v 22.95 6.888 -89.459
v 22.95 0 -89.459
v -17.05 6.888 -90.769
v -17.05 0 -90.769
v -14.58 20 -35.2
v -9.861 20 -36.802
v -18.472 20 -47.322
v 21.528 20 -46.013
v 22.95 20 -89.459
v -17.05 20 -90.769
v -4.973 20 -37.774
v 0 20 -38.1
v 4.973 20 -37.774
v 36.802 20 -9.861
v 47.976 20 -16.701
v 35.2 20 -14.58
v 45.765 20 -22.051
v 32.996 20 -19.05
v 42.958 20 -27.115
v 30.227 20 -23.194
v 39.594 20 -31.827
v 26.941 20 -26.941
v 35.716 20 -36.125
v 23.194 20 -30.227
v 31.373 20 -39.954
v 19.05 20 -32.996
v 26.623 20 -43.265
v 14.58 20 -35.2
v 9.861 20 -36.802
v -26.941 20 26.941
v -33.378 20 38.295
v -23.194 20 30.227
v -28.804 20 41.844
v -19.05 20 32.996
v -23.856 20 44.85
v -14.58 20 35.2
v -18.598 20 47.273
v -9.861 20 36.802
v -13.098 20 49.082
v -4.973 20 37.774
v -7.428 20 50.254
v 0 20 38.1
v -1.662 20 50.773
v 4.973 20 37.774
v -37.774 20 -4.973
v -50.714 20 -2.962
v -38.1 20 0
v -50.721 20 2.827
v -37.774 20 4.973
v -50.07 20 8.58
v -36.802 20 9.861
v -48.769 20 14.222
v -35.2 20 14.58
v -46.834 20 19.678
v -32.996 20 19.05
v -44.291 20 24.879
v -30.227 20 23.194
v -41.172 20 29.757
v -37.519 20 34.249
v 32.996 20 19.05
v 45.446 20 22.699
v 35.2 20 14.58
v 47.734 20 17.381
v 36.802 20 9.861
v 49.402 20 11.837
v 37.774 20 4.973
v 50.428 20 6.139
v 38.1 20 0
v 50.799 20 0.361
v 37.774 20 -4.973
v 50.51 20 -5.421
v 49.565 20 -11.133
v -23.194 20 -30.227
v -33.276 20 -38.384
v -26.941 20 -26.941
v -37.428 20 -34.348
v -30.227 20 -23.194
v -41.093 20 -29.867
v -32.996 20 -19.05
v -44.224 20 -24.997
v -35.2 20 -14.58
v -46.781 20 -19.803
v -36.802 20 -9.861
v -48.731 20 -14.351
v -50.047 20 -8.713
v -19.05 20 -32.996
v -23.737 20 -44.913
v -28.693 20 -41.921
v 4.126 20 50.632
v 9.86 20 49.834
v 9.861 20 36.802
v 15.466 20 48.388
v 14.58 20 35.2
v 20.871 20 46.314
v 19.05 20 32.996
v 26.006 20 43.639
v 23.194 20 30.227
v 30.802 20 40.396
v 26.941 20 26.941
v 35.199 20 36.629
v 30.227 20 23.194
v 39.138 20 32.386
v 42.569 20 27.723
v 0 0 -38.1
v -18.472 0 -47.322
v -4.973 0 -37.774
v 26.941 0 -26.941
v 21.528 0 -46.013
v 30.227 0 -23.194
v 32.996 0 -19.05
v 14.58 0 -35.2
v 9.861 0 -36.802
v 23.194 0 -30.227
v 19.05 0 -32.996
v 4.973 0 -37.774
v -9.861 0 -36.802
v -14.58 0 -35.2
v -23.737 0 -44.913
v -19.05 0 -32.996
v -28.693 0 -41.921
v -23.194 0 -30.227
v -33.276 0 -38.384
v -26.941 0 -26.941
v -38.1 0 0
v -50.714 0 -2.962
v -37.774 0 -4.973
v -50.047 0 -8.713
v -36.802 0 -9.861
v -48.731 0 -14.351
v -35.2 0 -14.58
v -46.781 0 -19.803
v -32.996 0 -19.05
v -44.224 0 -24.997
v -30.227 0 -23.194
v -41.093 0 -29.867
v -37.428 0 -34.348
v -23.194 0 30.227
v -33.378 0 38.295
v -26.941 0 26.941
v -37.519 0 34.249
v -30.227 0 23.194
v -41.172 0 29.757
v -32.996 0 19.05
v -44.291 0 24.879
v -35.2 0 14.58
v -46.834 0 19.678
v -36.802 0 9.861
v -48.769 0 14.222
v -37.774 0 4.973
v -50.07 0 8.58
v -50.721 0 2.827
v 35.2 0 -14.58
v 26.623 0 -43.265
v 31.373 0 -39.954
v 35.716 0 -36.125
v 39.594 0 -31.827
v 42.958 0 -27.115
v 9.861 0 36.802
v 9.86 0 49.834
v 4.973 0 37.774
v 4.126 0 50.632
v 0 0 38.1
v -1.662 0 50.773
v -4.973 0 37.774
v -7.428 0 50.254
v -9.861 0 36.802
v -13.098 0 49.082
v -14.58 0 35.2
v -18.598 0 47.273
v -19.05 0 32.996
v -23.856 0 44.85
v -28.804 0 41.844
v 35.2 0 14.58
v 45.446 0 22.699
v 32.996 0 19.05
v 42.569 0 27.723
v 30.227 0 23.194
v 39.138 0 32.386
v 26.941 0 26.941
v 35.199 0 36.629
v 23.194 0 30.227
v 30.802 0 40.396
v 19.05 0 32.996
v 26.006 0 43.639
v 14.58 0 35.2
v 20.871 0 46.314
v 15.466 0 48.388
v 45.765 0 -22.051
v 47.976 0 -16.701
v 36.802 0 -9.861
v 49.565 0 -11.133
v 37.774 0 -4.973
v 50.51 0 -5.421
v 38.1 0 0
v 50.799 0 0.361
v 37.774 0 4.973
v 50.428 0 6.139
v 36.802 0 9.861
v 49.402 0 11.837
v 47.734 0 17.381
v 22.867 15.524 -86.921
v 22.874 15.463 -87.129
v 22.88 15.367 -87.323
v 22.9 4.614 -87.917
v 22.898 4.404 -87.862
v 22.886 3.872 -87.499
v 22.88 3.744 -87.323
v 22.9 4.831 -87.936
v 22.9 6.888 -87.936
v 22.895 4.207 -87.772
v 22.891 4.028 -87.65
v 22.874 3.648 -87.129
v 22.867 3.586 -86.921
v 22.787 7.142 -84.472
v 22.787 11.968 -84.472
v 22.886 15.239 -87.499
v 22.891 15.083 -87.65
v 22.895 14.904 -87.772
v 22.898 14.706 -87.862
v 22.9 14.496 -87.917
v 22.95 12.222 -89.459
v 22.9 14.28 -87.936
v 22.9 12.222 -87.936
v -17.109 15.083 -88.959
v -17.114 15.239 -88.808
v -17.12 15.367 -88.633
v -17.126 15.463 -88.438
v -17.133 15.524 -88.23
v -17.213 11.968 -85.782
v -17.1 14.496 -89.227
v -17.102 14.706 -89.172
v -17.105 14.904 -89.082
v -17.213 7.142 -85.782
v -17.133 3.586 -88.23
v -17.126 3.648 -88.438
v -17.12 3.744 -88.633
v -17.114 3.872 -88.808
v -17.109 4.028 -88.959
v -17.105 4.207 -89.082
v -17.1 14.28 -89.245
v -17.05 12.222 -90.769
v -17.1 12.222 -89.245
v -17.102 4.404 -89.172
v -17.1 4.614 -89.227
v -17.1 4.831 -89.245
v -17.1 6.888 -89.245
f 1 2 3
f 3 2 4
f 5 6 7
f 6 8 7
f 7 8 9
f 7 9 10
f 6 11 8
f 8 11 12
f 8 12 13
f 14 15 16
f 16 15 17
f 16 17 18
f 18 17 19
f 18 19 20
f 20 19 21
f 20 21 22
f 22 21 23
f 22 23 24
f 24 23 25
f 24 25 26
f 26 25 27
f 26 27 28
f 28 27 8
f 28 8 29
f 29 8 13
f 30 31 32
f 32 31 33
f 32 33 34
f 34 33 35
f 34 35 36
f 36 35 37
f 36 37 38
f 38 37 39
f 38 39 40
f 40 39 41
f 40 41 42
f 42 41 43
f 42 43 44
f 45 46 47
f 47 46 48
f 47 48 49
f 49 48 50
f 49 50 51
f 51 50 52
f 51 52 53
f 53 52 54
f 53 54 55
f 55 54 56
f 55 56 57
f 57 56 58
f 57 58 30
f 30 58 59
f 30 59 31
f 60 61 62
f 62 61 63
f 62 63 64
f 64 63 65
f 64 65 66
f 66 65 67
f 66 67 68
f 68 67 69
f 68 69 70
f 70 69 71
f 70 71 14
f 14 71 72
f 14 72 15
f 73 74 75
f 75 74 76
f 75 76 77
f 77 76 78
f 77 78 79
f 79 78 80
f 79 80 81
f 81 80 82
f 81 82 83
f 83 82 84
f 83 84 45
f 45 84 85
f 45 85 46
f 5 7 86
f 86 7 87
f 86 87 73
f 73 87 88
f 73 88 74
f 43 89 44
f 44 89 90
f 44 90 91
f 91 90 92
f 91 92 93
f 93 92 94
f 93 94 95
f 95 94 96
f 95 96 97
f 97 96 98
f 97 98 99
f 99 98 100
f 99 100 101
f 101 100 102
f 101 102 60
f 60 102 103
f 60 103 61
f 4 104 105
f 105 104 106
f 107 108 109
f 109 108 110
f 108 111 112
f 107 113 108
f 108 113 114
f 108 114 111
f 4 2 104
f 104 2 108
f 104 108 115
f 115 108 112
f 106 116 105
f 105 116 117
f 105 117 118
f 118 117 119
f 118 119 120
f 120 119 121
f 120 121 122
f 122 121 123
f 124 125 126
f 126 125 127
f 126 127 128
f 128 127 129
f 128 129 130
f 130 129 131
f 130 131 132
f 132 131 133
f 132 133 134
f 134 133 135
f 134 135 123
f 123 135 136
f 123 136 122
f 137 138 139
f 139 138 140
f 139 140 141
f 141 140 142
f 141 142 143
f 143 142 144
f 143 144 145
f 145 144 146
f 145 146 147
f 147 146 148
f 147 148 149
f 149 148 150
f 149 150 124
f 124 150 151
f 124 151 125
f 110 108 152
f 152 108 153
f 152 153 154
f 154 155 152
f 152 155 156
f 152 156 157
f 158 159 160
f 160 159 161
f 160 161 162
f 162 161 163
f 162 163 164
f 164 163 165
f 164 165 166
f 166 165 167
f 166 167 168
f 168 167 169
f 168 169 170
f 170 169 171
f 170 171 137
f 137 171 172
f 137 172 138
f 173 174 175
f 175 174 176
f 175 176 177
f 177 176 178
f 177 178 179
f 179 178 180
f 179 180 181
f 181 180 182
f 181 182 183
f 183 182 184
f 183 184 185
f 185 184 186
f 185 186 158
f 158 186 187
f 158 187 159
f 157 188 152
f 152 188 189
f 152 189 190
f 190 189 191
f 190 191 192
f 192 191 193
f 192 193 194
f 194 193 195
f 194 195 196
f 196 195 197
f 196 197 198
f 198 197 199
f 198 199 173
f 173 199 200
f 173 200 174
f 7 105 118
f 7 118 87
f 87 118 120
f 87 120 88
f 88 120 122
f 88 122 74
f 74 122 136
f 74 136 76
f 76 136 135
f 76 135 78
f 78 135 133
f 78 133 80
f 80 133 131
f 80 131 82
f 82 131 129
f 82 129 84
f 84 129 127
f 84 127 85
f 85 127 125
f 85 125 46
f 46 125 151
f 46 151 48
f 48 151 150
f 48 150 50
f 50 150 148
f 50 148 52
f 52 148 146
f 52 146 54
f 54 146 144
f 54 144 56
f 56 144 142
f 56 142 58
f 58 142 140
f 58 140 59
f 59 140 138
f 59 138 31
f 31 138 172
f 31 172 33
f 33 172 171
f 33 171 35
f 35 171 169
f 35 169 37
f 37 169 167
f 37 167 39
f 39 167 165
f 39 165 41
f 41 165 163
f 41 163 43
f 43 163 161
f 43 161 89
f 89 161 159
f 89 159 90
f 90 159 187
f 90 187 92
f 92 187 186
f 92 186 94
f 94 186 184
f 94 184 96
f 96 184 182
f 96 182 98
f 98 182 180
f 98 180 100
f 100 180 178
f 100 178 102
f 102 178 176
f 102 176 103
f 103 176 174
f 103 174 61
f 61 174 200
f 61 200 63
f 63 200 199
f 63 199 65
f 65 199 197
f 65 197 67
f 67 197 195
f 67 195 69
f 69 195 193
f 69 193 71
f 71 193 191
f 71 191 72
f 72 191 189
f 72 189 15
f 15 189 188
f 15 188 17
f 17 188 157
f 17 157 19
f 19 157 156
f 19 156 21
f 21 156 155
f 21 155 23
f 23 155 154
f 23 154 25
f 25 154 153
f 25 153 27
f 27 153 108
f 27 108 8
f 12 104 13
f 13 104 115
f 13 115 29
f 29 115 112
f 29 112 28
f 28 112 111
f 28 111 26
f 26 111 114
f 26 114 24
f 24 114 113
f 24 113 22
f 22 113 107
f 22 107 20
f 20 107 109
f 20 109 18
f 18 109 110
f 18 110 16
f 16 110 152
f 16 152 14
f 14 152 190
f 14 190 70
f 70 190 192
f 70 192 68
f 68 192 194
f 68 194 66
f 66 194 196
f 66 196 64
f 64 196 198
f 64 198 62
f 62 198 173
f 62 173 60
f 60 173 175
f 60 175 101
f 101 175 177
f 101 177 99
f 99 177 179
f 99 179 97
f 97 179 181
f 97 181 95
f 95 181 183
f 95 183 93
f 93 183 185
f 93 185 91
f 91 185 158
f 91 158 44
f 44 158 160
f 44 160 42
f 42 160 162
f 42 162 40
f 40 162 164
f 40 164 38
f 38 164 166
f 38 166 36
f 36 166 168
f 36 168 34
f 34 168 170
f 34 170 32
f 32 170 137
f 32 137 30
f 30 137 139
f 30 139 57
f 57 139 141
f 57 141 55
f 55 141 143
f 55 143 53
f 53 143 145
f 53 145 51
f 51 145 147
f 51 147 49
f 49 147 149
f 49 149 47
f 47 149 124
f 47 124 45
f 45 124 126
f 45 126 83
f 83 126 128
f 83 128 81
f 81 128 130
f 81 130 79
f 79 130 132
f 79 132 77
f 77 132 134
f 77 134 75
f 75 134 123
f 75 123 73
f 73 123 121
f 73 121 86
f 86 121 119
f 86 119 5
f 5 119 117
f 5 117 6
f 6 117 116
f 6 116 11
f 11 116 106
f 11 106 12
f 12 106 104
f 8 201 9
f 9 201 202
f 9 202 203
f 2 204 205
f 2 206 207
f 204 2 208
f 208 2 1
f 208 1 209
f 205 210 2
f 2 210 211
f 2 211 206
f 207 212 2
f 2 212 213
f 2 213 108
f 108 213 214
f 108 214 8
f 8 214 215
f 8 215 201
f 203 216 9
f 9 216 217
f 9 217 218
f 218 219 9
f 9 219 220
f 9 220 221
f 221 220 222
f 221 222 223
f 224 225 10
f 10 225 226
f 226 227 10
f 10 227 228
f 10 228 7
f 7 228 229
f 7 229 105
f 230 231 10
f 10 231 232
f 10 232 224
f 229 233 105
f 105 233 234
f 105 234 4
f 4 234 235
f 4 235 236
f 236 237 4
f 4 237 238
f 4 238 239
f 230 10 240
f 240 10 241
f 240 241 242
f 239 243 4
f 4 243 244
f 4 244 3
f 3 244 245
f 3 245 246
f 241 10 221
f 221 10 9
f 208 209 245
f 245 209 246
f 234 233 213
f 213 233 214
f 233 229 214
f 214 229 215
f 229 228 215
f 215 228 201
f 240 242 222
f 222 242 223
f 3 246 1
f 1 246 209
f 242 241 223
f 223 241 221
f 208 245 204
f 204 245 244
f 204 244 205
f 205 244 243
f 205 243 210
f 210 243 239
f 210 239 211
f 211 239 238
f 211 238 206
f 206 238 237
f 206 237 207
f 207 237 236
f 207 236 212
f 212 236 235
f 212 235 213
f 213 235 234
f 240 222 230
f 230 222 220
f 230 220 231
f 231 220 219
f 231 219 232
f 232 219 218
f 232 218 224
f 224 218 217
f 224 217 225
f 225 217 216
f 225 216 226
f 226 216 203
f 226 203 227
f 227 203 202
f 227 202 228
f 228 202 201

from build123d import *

# Parameters (mm, degrees)
SKETCH1_R               = 50.8
SKETCH1_R_2             = 38.1
BOSS_EXTRUDE1_DEPTH     = 20
BOSS_EXTRUDE2_START     = -20
BOSS_EXTRUDE2_DEPTH     = 20
CUT_EXTRUDE1_DEPTH      = 118.349403873
CUT_EXTRUDE1_DEPTH_BACK = 118.349403873
FILLET1_R               = 1.27


with BuildPart() as part:
    # Sketch1 → Boss-Extrude1 (new body)
    with BuildSketch(Plane(origin=(0, 0, 0), x_dir=(1, 0, 0), z_dir=(0, 1, 0))):
        with Locations(Location((0, 0, 0), (0, 0, 270))):
            Circle(SKETCH1_R)
        with Locations(Location((0, 0, 0), (0, 0, 270))):
            Circle(SKETCH1_R_2, mode=Mode.SUBTRACT)
    extrude(amount=BOSS_EXTRUDE1_DEPTH)

    # Sketch2 → Boss-Extrude2 (add)
    with BuildSketch(Plane(origin=(0, 20, 0), x_dir=(1, 0, 0), z_dir=(0, 1, 0)).offset(BOSS_EXTRUDE2_START)):
        with BuildLine():
            ThreePointArc((9.793574848, 49.847024903), (15.777570545, 48.287765197), (21.527776819, 46.012985398))
            Line((21.527776819, 46.012985398), (21.640596186, 49.459185087))
            Line((21.640596186, 49.459185087), (9.793574848, 49.847024903))
        make_face()
        with BuildLine():
            Line((-18.147499758, 57.241535713), (-18.359403814, 50.768678182))
            Line((-18.359403814, 50.768678182), (-6.512382476, 50.380838366))
            ThreePointArc((-6.512382476, 50.380838366), (1.662165771, 50.772799853), (9.793574848, 49.847024903))
            Line((9.793574848, 49.847024903), (21.640596186, 49.459185087))
            Line((21.640596186, 49.459185087), (21.852500242, 55.932042618))
            Line((21.852500242, 55.932042618), (-18.147499758, 57.241535713))
        make_face()
        with BuildLine():
            Line((-18.359403814, 50.768678182), (-18.472223181, 47.322478493))
            ThreePointArc((-18.472223181, 47.322478493), (-12.585548111, 49.216297898), (-6.512382476, 50.380838366))
            Line((-6.512382476, 50.380838366), (-18.359403814, 50.768678182))
        make_face()
        Polygon((-17.049910719, 90.768678182), (-18.147499758, 57.241535713), (21.852500242, 55.932042618), (22.950089281, 89.459185087), align=None)
    extrude(amount=BOSS_EXTRUDE2_DEPTH)

    # Sketch4 → Cut-Extrude1 (cut, two sides: drawn at the far end of the back side and taken through both)
    with BuildSketch(Plane(origin=(20, 0, 0.654746548), x_dir=(0.03271979863396448, 0, -0.9994645640428443), z_dir=(0.9994645640428443, 0, 0.03271979863396448)).offset(-CUT_EXTRUDE1_DEPTH_BACK)):
        Polygon((90.162207723, 12.222487003), (88.638207723, 12.222487003), (88.638207723, 15.524487003), (87.622207723, 15.524487003), (85.172720429, 11.968487003), (85.172720429, 7.142487003), (87.622207723, 3.586487003), (88.638207723, 3.586487003), (88.638207723, 6.888487003), (90.162207723, 6.888487003), align=None)
    extrude(amount=CUT_EXTRUDE1_DEPTH + CUT_EXTRUDE1_DEPTH_BACK, mode=Mode.SUBTRACT)

    # Fillet1
    # the kernel refuses this fillet: 1.27 mm, written as the material it adds along each edge
    with BuildSketch(Plane(origin=(-17.099775692, 3.586487003, -89.245494187), x_dir=(-0.032719798633964424, 1.5621799566964636e-12, 0.9994645640428443), z_dir=(0.9994645640428443, 0, 0.03271979863396443))) as fillet1_piece_1:
        with BuildLine():
            CenterArc((1.27, -1.244340789), FILLET1_R, 101.536959033, 78.463040967)
            Line((0, -1.244340789), (-0.0254, -1.244340789))
            Line((-0.0254, -1.244340789), (-0.0254, 0))
            Line((-0.0254, 0), (0, 0.0254))
            ThreePointArc((0, 0.0254), (0.508, 0.0254), (1.01092, 0.024886816))
            Line((1.01092, 0.024886816), (1.016, 0))
        make_face()
    extrude(amount=40.021428912)
    with BuildSketch(Plane(origin=(-17.099775692, 15.524487003, -89.245494187), x_dir=(0, -1, 0), z_dir=(0.9994645640428443, 0, 0.03271979863396443))) as fillet1_piece_2:
        with BuildLine():
            CenterArc((1.244340789, -1.27), FILLET1_R, 90, 78.463040967)
            Line((0, -1.016), (-0.024886816, -1.01092))
            ThreePointArc((-0.024886816, -1.01092), (-0.0254, -0.508), (-0.0254, 0))
            Line((-0.0254, 0), (0, 0.0254))
            Line((0, 0.0254), (1.244340789, 0.0254))
            Line((1.244340789, 0.0254), (1.244340789, 0))
        make_face()
    extrude(amount=40.021428912)


solid = part.part
